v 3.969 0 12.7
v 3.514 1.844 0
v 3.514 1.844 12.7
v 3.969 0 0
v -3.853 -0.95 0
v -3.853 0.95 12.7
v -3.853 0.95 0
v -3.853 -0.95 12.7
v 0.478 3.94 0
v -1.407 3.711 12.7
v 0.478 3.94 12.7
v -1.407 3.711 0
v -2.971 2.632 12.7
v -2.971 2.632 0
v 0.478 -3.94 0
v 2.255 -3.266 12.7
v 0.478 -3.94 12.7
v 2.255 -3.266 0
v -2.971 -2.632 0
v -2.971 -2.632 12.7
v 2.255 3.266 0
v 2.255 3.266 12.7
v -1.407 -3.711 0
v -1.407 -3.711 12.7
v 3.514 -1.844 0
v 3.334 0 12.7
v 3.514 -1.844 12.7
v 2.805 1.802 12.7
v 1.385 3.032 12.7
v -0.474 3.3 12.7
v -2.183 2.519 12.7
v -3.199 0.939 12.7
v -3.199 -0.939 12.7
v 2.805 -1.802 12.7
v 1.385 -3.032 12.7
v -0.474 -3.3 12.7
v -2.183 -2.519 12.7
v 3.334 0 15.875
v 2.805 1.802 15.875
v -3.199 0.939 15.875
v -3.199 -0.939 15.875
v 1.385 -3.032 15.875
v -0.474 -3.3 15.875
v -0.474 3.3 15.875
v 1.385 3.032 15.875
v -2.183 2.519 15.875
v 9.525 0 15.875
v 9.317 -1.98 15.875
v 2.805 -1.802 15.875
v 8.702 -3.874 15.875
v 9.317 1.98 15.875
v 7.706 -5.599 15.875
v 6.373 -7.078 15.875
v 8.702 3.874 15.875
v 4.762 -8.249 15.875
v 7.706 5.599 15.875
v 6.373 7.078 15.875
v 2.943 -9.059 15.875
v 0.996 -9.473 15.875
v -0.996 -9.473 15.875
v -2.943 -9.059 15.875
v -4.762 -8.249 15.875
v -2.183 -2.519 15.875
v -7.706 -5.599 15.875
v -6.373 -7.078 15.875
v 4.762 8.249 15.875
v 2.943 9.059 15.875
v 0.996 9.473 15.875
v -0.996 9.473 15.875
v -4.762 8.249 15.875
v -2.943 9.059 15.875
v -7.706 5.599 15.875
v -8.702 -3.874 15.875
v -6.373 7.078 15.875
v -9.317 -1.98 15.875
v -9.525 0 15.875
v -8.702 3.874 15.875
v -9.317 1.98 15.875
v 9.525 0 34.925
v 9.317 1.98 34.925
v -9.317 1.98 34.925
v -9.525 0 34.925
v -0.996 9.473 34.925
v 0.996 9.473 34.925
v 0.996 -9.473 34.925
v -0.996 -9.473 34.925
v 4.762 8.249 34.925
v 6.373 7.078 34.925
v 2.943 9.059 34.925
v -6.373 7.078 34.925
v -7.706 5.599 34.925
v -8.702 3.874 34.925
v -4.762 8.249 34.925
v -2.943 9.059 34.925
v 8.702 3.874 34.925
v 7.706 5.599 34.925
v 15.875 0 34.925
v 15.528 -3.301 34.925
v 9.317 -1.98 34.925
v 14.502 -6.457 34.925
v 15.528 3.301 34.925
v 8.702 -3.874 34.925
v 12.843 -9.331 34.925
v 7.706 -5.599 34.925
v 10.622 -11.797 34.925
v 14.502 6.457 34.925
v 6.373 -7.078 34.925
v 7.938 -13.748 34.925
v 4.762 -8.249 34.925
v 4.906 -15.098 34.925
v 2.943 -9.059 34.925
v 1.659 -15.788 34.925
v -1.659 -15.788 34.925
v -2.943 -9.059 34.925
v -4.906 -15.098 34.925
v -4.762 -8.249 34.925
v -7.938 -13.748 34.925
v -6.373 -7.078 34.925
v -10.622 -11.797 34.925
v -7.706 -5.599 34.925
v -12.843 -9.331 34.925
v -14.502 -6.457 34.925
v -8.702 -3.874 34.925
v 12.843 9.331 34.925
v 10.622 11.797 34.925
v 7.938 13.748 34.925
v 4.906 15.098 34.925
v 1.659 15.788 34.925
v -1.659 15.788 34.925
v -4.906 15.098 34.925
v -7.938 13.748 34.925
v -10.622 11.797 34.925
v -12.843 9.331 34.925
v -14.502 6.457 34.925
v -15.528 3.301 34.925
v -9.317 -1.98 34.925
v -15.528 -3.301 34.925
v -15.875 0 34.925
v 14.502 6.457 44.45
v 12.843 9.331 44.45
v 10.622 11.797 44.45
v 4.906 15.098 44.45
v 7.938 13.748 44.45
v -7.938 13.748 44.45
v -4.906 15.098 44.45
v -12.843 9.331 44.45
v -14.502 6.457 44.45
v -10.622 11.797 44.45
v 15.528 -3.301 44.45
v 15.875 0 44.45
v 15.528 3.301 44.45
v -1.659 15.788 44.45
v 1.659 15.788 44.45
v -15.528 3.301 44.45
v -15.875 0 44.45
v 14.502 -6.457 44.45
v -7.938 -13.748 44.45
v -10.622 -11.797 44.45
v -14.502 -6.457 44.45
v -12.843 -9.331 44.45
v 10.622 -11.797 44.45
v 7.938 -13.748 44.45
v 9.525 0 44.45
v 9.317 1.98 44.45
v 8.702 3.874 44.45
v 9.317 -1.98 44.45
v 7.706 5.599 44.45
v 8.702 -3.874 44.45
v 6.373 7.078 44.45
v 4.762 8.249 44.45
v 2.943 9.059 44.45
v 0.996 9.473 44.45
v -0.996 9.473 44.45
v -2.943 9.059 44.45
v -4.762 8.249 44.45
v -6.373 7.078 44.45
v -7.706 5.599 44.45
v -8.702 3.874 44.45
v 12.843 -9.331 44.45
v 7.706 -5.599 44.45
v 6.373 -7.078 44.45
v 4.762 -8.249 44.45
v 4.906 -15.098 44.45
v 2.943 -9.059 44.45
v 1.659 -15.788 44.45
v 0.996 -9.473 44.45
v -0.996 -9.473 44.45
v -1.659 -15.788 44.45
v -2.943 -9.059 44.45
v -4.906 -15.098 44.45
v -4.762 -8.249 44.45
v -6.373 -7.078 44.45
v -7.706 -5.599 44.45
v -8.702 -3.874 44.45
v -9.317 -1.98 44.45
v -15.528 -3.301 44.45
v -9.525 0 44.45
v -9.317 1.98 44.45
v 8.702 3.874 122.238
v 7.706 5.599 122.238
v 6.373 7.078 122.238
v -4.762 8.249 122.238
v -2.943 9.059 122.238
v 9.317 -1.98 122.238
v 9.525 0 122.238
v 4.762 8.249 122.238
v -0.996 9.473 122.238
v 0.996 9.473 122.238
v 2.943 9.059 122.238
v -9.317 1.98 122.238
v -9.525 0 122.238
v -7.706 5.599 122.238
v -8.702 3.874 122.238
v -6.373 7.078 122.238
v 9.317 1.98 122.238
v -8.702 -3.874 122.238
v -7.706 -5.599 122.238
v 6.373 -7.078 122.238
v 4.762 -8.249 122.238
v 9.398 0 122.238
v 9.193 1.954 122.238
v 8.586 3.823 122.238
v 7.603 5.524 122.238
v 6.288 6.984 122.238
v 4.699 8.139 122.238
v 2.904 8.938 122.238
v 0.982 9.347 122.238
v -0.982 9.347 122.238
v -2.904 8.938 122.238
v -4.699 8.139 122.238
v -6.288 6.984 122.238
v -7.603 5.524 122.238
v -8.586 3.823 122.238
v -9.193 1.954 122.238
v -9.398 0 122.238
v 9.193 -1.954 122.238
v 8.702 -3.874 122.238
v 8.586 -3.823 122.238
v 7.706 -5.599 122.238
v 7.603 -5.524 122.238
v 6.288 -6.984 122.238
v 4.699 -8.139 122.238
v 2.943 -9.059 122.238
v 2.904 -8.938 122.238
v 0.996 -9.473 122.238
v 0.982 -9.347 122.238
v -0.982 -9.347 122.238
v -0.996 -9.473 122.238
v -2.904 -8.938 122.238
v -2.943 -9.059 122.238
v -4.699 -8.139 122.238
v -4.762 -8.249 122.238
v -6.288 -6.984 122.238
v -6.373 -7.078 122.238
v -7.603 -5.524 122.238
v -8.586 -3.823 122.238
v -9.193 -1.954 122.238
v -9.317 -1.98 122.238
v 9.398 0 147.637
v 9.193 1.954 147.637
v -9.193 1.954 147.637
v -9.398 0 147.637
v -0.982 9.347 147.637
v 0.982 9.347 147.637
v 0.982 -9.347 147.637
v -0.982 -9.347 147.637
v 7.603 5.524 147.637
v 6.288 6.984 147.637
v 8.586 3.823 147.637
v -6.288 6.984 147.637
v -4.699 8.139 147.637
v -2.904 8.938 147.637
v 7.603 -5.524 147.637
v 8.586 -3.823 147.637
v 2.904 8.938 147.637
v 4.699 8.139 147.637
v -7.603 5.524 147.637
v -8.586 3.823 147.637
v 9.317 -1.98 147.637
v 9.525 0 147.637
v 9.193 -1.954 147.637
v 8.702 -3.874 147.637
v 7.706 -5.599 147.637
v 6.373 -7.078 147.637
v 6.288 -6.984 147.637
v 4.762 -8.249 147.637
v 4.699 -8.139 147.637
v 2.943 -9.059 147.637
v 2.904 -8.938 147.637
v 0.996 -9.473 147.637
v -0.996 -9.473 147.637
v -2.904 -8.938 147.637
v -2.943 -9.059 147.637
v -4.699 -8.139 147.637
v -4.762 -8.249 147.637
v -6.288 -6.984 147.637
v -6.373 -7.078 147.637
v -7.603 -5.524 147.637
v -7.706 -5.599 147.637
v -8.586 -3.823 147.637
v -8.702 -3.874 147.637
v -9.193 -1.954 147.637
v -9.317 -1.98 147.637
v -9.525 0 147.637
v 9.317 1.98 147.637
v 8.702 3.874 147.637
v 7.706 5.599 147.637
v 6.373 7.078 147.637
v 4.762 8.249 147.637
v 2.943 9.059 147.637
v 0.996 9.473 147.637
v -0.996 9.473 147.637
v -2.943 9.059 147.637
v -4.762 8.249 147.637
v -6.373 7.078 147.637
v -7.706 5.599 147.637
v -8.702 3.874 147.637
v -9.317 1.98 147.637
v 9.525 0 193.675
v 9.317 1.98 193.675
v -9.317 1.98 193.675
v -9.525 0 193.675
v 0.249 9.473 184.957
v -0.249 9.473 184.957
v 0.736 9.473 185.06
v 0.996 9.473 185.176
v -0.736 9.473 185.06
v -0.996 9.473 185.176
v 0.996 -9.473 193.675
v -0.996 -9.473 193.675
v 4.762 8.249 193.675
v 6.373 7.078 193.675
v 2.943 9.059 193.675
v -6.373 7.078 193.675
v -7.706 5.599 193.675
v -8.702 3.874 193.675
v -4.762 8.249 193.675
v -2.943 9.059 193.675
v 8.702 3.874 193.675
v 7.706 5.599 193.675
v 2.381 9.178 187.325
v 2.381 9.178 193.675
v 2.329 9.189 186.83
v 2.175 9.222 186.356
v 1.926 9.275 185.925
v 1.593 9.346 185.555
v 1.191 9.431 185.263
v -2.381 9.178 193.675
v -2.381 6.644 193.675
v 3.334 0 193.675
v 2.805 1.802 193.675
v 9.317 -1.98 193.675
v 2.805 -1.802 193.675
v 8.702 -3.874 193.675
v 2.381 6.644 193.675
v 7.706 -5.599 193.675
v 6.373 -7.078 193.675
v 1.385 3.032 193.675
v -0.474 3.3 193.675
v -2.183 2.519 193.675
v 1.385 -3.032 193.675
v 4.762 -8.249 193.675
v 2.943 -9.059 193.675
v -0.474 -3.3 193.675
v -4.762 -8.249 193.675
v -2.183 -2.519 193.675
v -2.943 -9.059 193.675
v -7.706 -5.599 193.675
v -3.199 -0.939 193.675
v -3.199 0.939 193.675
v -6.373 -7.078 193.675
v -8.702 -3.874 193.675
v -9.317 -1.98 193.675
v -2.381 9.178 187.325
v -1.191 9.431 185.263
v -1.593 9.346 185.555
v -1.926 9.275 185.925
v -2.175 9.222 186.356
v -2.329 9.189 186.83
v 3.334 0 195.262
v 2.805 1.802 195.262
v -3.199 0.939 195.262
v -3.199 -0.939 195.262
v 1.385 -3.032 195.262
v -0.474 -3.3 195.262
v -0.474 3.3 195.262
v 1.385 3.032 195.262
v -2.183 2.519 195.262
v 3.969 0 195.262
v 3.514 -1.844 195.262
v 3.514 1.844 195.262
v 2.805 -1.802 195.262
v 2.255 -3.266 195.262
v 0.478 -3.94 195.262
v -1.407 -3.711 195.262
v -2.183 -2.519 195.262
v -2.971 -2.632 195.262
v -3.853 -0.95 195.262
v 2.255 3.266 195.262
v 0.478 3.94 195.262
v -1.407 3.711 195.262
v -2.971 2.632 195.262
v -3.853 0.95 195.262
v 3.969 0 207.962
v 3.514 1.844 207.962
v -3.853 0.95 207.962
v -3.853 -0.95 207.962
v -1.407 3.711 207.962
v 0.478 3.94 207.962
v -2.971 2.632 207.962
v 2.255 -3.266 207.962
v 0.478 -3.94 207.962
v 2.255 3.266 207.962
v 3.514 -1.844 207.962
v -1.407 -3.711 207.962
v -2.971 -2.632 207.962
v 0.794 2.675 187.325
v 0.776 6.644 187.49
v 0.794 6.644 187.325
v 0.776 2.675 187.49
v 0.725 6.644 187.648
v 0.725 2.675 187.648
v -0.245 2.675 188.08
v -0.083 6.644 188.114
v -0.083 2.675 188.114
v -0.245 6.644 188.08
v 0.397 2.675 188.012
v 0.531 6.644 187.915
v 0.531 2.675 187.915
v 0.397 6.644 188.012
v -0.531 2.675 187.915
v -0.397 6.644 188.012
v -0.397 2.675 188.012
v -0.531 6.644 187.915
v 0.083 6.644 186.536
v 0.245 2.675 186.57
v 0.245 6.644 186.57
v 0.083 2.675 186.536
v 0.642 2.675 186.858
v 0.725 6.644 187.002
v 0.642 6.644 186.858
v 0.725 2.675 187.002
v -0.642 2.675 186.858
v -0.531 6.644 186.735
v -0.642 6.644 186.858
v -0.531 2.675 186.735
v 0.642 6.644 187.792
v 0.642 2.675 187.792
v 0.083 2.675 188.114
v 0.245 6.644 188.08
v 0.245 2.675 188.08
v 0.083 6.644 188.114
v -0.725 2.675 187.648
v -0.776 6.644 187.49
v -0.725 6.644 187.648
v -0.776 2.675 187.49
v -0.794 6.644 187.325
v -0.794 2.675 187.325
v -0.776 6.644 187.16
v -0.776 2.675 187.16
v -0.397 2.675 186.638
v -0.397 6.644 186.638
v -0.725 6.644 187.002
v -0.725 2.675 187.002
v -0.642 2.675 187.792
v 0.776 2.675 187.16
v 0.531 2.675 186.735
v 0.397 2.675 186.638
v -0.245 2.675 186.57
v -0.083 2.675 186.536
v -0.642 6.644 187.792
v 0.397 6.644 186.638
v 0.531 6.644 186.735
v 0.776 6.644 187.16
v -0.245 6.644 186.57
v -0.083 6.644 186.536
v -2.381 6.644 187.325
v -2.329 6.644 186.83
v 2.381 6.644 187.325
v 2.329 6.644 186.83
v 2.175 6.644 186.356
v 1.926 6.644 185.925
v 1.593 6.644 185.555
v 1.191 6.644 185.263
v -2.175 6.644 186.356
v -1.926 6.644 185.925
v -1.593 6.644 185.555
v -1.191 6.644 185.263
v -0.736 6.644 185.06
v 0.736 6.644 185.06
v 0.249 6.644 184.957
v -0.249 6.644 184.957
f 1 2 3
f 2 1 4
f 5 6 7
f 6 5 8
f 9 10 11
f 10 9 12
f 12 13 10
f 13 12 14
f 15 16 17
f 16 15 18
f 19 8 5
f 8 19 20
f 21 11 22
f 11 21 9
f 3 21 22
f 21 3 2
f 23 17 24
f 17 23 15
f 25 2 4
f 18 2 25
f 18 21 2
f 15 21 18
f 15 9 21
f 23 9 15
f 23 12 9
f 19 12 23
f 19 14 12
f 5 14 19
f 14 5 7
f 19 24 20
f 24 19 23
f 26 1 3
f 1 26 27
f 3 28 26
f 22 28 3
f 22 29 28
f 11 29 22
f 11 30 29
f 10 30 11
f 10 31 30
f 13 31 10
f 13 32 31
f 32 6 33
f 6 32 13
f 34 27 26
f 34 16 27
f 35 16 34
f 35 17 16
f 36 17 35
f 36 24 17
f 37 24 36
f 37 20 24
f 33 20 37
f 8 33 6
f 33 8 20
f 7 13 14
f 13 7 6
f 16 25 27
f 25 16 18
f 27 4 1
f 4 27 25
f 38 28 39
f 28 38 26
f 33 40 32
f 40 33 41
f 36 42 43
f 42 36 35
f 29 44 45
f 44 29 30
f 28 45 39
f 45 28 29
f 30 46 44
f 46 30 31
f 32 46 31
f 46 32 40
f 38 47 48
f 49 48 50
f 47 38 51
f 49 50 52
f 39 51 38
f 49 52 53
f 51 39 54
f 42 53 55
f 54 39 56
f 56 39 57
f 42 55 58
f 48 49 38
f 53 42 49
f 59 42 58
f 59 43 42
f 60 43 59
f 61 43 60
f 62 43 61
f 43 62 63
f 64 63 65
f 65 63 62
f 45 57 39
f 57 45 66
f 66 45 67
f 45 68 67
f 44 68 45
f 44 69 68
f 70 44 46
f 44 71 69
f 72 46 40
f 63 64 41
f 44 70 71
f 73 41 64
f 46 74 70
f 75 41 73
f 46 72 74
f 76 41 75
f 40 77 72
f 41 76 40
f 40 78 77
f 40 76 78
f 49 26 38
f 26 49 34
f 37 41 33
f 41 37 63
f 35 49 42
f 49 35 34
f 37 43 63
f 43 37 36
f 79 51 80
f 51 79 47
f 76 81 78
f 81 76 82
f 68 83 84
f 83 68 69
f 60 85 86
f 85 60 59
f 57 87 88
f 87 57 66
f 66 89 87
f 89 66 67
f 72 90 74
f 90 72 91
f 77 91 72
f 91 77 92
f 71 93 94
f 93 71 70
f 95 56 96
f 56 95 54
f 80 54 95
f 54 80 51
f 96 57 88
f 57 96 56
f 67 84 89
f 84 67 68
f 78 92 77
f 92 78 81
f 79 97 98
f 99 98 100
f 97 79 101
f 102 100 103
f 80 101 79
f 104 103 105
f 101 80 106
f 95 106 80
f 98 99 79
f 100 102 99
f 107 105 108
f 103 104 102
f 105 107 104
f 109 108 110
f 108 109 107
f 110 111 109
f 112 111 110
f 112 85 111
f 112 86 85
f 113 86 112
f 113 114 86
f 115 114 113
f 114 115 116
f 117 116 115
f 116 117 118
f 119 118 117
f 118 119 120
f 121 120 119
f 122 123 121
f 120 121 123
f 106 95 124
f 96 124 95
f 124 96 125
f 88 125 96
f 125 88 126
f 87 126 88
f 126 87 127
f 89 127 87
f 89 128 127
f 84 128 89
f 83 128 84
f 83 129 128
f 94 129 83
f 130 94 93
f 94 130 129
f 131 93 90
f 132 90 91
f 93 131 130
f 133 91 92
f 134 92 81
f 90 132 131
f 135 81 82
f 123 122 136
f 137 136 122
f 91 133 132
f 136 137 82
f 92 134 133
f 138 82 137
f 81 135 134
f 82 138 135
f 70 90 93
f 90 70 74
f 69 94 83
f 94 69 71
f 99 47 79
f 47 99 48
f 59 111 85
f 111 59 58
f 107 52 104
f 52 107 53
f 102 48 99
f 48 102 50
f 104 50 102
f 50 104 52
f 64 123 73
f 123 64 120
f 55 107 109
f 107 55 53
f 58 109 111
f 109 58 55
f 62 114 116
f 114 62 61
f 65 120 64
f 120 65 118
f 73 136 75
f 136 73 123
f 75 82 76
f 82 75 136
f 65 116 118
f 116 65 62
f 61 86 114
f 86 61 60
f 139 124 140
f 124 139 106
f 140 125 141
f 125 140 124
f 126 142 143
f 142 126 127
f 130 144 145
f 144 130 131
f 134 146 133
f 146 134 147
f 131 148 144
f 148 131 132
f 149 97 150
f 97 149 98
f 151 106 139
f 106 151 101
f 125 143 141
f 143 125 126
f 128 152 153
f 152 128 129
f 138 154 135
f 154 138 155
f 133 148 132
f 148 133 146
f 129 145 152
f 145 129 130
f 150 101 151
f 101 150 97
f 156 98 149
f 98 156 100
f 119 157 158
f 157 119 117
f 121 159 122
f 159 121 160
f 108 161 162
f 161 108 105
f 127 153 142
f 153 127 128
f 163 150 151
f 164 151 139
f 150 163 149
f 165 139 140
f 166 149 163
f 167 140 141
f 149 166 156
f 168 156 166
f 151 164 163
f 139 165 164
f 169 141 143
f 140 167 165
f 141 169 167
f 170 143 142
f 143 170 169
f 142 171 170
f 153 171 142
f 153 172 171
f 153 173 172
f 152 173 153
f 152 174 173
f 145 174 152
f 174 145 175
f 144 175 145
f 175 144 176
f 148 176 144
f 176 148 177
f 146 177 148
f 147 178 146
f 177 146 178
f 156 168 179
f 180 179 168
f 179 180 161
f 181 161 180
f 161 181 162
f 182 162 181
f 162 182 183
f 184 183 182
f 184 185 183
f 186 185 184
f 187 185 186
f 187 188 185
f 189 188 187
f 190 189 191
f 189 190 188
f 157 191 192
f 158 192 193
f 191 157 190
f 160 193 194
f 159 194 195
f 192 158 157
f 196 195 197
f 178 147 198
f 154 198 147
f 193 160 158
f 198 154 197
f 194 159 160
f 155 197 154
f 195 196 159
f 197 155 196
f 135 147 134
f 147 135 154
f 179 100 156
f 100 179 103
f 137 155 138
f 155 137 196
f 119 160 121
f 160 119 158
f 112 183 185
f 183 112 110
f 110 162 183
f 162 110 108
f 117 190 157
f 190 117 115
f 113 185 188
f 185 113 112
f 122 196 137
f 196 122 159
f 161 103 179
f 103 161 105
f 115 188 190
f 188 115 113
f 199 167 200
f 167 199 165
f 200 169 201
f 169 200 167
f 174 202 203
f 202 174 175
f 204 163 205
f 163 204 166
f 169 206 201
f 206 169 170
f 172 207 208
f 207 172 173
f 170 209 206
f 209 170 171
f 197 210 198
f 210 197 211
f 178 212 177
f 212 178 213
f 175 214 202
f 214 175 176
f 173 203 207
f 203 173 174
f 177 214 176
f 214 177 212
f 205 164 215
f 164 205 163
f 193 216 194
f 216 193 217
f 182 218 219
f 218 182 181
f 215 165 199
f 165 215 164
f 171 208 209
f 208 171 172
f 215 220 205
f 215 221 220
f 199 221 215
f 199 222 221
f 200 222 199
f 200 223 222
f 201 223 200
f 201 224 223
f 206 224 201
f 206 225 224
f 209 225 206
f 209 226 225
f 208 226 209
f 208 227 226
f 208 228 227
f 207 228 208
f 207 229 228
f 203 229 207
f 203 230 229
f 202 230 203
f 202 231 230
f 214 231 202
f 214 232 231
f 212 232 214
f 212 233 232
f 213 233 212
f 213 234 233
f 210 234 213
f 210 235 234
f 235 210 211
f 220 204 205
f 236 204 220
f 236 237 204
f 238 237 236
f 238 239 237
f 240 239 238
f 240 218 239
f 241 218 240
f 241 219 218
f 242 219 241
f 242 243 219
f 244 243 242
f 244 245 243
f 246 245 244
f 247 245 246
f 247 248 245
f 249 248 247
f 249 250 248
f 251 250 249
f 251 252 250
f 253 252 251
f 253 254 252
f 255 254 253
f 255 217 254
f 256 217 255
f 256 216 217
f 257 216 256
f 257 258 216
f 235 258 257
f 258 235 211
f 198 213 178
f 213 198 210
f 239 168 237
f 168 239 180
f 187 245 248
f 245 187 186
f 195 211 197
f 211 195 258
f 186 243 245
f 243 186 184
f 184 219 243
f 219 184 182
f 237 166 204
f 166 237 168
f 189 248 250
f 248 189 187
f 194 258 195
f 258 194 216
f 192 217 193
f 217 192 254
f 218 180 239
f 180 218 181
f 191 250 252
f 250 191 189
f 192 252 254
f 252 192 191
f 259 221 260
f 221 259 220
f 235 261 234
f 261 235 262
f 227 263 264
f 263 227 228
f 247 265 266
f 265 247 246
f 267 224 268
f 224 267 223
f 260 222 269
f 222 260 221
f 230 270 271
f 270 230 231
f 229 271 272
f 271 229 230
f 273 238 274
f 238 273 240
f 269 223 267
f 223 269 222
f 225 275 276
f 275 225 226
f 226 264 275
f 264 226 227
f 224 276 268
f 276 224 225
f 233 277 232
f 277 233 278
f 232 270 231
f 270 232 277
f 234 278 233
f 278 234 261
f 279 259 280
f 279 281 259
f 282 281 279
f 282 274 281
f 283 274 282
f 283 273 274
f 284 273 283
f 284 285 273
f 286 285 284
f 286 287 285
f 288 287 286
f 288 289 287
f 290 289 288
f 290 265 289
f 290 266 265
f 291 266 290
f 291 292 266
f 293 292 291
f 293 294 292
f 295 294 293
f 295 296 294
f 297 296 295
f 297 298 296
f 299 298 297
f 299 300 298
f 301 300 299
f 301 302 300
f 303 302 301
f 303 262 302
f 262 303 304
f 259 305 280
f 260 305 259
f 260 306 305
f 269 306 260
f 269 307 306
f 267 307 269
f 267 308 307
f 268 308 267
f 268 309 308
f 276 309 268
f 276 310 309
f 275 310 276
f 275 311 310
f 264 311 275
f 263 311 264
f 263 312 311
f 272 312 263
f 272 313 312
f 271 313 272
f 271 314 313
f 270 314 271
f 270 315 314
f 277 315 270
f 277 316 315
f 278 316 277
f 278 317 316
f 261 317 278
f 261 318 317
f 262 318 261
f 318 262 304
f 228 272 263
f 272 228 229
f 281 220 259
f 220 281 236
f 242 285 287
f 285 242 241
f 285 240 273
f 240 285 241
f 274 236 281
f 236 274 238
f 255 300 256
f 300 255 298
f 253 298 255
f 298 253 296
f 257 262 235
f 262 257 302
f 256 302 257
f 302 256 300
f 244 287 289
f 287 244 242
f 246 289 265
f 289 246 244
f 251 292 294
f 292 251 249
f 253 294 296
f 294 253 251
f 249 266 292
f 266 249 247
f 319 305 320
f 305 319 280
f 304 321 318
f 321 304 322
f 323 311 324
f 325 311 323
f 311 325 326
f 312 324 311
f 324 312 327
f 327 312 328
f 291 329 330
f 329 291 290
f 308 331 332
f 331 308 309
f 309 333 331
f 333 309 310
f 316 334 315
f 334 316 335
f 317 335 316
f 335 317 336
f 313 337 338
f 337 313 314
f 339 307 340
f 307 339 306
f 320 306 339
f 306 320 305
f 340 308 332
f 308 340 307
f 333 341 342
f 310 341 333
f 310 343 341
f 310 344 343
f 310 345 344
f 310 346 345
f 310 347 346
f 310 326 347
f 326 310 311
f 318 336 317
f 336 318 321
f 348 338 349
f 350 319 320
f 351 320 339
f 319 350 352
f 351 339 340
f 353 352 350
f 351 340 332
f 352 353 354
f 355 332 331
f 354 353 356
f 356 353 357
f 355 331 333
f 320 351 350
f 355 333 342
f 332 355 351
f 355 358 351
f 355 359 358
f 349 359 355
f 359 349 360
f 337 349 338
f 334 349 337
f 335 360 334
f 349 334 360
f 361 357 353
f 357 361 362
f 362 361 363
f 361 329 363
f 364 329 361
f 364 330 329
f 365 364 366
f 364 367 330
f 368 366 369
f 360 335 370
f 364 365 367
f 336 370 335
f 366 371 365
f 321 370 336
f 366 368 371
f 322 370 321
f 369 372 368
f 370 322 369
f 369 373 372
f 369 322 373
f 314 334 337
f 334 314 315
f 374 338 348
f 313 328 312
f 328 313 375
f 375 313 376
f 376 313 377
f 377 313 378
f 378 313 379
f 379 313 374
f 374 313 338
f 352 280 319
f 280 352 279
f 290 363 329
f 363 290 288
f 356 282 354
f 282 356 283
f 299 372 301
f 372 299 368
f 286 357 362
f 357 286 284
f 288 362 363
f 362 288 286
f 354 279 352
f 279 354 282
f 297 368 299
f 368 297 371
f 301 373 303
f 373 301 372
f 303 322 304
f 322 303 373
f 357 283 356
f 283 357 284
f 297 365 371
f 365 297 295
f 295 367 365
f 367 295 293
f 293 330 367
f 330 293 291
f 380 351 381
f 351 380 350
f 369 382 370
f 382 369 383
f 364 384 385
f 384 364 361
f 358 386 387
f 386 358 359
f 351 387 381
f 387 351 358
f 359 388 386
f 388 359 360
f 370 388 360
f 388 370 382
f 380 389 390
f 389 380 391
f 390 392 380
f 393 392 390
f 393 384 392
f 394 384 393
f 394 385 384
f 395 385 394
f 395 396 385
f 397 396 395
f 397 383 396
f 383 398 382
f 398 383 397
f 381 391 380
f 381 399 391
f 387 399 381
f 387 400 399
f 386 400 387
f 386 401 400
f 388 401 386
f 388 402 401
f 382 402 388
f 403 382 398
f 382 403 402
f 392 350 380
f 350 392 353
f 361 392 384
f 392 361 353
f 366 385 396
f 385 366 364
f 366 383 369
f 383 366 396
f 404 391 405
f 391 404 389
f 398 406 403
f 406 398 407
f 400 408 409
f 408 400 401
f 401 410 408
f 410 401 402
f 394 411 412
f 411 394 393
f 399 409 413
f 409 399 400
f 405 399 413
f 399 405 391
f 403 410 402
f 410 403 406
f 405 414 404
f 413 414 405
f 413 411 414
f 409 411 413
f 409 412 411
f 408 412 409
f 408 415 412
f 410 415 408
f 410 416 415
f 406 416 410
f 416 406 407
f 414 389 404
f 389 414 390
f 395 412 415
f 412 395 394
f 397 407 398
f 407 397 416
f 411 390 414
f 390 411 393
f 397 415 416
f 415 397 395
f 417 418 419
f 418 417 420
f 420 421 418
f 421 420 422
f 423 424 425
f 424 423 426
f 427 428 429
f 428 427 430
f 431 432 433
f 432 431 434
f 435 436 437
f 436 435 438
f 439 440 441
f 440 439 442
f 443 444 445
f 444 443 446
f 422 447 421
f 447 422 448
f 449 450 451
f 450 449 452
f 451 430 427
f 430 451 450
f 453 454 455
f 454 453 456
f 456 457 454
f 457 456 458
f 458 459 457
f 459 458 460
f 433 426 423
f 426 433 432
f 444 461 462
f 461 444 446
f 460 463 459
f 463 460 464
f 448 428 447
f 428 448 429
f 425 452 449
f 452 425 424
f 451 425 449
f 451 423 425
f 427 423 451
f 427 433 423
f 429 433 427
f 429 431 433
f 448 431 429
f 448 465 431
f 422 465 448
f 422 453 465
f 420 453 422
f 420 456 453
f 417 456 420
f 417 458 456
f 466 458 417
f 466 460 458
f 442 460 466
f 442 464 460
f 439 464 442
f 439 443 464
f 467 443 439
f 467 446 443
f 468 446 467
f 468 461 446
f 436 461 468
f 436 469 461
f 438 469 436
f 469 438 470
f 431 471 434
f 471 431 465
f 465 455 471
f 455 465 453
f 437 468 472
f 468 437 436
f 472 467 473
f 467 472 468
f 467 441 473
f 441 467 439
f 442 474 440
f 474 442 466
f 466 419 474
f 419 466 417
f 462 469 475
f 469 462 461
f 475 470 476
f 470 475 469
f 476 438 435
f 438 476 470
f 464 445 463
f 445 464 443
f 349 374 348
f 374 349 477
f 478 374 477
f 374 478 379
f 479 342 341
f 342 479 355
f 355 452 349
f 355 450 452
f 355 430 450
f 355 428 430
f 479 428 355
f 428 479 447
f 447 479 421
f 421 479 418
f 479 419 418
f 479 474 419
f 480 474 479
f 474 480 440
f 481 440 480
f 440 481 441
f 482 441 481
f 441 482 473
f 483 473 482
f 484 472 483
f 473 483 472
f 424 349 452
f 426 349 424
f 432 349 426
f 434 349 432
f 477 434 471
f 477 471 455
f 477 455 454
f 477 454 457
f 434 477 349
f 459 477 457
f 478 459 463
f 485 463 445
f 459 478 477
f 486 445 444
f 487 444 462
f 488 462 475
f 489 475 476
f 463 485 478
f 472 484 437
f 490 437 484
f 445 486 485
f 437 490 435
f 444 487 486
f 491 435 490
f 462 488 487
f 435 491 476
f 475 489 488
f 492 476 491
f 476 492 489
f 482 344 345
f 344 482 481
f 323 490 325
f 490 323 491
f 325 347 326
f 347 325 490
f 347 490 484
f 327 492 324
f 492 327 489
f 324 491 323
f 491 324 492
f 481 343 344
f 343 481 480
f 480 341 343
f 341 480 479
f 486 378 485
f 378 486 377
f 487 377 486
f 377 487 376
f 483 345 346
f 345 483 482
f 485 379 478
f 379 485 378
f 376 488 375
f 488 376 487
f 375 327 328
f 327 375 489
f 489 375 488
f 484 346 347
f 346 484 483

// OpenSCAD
inch=25.4;

module index_shaft_modified_3quarter() {
     index_shaft(sections=[
		      [ 8,  5/16     ,   0],
		      [ 2,  5/16-0.05,   8],
		      [12,  3/4      ,  10],
		      [ 6,1+1/4      ,  22],
		      [49,0.750      ,  28],
		      [16,0.740      ,  77],
		      [29,0.750      ,  93],
		      [ 2,  5/16-0.05, 121],
		      [ 8,  5/16     , 123]]
	  );
}

module index_shaft_modified_half() {
     index_shaft(sections=[
		      [ 8,  5/16     ,   0],
		      [ 2,  5/16-0.05,   8],
		      [12,  1/2      ,  10],
		      [ 6,1+1/4      ,  22],
		      [49,0.750      ,  28],
		      [16,0.740      ,  77],
		      [29,0.750      ,  93],
		      [ 2,  5/16-0.05, 121],
		      [ 8,  5/16     , 123]]
	  );
}

// section length units are 1/16"
module index_shaft(
     sections=[[ 8,  5/16     ,   0],
	       [ 2,  5/16-0.05,   8],
	       [12,  5/16     ,  10],
	       [ 6,1+1/4      ,  22],
	       [49,0.750      ,  28],
	       [16,0.740      ,  77],
	       [28,0.750      ,  93],
	       [ 2,  5/16-0.05, 121],
	       [ 8,  5/16     , 123]],
     keyway=[3/16,3/32,1/4,122/16]*inch,
     pin=[1/16,1/4,1/4]*inch ) {
     difference() {
	  union() {
	       for (section=sections) {
		    translate([0,0,section[2]*inch/16])
			 cylinder(d=section[1]*inch, h=section[0]*inch/16);
	       }
	  }

	  // Pin hole
	  translate([0,0.750*inch/2-pin[1]/2,keyway[3]-pin[2]]) {
	       rotate([90,0,0]) {
		    cylinder(d=pin[0], h=pin[1]+1, center=true, $fn=30);
	       }
	  }

	  // Keyway
	       translate([0,0.750*inch/2-keyway[1]/2,keyway[3]-pin[2]]) {
	       rotate([90,0,0]) hull(){
		    
		    cylinder(d=keyway[0], h=keyway[1]+1, center=true, $fn=30);
		    translate([0,keyway[2],0])
		    cylinder(d=keyway[0], h=keyway[1]+1, center=true, $fn=30);
	       }
	  }
	  
     }
     
}

index_shaft_modified_3quarter();
